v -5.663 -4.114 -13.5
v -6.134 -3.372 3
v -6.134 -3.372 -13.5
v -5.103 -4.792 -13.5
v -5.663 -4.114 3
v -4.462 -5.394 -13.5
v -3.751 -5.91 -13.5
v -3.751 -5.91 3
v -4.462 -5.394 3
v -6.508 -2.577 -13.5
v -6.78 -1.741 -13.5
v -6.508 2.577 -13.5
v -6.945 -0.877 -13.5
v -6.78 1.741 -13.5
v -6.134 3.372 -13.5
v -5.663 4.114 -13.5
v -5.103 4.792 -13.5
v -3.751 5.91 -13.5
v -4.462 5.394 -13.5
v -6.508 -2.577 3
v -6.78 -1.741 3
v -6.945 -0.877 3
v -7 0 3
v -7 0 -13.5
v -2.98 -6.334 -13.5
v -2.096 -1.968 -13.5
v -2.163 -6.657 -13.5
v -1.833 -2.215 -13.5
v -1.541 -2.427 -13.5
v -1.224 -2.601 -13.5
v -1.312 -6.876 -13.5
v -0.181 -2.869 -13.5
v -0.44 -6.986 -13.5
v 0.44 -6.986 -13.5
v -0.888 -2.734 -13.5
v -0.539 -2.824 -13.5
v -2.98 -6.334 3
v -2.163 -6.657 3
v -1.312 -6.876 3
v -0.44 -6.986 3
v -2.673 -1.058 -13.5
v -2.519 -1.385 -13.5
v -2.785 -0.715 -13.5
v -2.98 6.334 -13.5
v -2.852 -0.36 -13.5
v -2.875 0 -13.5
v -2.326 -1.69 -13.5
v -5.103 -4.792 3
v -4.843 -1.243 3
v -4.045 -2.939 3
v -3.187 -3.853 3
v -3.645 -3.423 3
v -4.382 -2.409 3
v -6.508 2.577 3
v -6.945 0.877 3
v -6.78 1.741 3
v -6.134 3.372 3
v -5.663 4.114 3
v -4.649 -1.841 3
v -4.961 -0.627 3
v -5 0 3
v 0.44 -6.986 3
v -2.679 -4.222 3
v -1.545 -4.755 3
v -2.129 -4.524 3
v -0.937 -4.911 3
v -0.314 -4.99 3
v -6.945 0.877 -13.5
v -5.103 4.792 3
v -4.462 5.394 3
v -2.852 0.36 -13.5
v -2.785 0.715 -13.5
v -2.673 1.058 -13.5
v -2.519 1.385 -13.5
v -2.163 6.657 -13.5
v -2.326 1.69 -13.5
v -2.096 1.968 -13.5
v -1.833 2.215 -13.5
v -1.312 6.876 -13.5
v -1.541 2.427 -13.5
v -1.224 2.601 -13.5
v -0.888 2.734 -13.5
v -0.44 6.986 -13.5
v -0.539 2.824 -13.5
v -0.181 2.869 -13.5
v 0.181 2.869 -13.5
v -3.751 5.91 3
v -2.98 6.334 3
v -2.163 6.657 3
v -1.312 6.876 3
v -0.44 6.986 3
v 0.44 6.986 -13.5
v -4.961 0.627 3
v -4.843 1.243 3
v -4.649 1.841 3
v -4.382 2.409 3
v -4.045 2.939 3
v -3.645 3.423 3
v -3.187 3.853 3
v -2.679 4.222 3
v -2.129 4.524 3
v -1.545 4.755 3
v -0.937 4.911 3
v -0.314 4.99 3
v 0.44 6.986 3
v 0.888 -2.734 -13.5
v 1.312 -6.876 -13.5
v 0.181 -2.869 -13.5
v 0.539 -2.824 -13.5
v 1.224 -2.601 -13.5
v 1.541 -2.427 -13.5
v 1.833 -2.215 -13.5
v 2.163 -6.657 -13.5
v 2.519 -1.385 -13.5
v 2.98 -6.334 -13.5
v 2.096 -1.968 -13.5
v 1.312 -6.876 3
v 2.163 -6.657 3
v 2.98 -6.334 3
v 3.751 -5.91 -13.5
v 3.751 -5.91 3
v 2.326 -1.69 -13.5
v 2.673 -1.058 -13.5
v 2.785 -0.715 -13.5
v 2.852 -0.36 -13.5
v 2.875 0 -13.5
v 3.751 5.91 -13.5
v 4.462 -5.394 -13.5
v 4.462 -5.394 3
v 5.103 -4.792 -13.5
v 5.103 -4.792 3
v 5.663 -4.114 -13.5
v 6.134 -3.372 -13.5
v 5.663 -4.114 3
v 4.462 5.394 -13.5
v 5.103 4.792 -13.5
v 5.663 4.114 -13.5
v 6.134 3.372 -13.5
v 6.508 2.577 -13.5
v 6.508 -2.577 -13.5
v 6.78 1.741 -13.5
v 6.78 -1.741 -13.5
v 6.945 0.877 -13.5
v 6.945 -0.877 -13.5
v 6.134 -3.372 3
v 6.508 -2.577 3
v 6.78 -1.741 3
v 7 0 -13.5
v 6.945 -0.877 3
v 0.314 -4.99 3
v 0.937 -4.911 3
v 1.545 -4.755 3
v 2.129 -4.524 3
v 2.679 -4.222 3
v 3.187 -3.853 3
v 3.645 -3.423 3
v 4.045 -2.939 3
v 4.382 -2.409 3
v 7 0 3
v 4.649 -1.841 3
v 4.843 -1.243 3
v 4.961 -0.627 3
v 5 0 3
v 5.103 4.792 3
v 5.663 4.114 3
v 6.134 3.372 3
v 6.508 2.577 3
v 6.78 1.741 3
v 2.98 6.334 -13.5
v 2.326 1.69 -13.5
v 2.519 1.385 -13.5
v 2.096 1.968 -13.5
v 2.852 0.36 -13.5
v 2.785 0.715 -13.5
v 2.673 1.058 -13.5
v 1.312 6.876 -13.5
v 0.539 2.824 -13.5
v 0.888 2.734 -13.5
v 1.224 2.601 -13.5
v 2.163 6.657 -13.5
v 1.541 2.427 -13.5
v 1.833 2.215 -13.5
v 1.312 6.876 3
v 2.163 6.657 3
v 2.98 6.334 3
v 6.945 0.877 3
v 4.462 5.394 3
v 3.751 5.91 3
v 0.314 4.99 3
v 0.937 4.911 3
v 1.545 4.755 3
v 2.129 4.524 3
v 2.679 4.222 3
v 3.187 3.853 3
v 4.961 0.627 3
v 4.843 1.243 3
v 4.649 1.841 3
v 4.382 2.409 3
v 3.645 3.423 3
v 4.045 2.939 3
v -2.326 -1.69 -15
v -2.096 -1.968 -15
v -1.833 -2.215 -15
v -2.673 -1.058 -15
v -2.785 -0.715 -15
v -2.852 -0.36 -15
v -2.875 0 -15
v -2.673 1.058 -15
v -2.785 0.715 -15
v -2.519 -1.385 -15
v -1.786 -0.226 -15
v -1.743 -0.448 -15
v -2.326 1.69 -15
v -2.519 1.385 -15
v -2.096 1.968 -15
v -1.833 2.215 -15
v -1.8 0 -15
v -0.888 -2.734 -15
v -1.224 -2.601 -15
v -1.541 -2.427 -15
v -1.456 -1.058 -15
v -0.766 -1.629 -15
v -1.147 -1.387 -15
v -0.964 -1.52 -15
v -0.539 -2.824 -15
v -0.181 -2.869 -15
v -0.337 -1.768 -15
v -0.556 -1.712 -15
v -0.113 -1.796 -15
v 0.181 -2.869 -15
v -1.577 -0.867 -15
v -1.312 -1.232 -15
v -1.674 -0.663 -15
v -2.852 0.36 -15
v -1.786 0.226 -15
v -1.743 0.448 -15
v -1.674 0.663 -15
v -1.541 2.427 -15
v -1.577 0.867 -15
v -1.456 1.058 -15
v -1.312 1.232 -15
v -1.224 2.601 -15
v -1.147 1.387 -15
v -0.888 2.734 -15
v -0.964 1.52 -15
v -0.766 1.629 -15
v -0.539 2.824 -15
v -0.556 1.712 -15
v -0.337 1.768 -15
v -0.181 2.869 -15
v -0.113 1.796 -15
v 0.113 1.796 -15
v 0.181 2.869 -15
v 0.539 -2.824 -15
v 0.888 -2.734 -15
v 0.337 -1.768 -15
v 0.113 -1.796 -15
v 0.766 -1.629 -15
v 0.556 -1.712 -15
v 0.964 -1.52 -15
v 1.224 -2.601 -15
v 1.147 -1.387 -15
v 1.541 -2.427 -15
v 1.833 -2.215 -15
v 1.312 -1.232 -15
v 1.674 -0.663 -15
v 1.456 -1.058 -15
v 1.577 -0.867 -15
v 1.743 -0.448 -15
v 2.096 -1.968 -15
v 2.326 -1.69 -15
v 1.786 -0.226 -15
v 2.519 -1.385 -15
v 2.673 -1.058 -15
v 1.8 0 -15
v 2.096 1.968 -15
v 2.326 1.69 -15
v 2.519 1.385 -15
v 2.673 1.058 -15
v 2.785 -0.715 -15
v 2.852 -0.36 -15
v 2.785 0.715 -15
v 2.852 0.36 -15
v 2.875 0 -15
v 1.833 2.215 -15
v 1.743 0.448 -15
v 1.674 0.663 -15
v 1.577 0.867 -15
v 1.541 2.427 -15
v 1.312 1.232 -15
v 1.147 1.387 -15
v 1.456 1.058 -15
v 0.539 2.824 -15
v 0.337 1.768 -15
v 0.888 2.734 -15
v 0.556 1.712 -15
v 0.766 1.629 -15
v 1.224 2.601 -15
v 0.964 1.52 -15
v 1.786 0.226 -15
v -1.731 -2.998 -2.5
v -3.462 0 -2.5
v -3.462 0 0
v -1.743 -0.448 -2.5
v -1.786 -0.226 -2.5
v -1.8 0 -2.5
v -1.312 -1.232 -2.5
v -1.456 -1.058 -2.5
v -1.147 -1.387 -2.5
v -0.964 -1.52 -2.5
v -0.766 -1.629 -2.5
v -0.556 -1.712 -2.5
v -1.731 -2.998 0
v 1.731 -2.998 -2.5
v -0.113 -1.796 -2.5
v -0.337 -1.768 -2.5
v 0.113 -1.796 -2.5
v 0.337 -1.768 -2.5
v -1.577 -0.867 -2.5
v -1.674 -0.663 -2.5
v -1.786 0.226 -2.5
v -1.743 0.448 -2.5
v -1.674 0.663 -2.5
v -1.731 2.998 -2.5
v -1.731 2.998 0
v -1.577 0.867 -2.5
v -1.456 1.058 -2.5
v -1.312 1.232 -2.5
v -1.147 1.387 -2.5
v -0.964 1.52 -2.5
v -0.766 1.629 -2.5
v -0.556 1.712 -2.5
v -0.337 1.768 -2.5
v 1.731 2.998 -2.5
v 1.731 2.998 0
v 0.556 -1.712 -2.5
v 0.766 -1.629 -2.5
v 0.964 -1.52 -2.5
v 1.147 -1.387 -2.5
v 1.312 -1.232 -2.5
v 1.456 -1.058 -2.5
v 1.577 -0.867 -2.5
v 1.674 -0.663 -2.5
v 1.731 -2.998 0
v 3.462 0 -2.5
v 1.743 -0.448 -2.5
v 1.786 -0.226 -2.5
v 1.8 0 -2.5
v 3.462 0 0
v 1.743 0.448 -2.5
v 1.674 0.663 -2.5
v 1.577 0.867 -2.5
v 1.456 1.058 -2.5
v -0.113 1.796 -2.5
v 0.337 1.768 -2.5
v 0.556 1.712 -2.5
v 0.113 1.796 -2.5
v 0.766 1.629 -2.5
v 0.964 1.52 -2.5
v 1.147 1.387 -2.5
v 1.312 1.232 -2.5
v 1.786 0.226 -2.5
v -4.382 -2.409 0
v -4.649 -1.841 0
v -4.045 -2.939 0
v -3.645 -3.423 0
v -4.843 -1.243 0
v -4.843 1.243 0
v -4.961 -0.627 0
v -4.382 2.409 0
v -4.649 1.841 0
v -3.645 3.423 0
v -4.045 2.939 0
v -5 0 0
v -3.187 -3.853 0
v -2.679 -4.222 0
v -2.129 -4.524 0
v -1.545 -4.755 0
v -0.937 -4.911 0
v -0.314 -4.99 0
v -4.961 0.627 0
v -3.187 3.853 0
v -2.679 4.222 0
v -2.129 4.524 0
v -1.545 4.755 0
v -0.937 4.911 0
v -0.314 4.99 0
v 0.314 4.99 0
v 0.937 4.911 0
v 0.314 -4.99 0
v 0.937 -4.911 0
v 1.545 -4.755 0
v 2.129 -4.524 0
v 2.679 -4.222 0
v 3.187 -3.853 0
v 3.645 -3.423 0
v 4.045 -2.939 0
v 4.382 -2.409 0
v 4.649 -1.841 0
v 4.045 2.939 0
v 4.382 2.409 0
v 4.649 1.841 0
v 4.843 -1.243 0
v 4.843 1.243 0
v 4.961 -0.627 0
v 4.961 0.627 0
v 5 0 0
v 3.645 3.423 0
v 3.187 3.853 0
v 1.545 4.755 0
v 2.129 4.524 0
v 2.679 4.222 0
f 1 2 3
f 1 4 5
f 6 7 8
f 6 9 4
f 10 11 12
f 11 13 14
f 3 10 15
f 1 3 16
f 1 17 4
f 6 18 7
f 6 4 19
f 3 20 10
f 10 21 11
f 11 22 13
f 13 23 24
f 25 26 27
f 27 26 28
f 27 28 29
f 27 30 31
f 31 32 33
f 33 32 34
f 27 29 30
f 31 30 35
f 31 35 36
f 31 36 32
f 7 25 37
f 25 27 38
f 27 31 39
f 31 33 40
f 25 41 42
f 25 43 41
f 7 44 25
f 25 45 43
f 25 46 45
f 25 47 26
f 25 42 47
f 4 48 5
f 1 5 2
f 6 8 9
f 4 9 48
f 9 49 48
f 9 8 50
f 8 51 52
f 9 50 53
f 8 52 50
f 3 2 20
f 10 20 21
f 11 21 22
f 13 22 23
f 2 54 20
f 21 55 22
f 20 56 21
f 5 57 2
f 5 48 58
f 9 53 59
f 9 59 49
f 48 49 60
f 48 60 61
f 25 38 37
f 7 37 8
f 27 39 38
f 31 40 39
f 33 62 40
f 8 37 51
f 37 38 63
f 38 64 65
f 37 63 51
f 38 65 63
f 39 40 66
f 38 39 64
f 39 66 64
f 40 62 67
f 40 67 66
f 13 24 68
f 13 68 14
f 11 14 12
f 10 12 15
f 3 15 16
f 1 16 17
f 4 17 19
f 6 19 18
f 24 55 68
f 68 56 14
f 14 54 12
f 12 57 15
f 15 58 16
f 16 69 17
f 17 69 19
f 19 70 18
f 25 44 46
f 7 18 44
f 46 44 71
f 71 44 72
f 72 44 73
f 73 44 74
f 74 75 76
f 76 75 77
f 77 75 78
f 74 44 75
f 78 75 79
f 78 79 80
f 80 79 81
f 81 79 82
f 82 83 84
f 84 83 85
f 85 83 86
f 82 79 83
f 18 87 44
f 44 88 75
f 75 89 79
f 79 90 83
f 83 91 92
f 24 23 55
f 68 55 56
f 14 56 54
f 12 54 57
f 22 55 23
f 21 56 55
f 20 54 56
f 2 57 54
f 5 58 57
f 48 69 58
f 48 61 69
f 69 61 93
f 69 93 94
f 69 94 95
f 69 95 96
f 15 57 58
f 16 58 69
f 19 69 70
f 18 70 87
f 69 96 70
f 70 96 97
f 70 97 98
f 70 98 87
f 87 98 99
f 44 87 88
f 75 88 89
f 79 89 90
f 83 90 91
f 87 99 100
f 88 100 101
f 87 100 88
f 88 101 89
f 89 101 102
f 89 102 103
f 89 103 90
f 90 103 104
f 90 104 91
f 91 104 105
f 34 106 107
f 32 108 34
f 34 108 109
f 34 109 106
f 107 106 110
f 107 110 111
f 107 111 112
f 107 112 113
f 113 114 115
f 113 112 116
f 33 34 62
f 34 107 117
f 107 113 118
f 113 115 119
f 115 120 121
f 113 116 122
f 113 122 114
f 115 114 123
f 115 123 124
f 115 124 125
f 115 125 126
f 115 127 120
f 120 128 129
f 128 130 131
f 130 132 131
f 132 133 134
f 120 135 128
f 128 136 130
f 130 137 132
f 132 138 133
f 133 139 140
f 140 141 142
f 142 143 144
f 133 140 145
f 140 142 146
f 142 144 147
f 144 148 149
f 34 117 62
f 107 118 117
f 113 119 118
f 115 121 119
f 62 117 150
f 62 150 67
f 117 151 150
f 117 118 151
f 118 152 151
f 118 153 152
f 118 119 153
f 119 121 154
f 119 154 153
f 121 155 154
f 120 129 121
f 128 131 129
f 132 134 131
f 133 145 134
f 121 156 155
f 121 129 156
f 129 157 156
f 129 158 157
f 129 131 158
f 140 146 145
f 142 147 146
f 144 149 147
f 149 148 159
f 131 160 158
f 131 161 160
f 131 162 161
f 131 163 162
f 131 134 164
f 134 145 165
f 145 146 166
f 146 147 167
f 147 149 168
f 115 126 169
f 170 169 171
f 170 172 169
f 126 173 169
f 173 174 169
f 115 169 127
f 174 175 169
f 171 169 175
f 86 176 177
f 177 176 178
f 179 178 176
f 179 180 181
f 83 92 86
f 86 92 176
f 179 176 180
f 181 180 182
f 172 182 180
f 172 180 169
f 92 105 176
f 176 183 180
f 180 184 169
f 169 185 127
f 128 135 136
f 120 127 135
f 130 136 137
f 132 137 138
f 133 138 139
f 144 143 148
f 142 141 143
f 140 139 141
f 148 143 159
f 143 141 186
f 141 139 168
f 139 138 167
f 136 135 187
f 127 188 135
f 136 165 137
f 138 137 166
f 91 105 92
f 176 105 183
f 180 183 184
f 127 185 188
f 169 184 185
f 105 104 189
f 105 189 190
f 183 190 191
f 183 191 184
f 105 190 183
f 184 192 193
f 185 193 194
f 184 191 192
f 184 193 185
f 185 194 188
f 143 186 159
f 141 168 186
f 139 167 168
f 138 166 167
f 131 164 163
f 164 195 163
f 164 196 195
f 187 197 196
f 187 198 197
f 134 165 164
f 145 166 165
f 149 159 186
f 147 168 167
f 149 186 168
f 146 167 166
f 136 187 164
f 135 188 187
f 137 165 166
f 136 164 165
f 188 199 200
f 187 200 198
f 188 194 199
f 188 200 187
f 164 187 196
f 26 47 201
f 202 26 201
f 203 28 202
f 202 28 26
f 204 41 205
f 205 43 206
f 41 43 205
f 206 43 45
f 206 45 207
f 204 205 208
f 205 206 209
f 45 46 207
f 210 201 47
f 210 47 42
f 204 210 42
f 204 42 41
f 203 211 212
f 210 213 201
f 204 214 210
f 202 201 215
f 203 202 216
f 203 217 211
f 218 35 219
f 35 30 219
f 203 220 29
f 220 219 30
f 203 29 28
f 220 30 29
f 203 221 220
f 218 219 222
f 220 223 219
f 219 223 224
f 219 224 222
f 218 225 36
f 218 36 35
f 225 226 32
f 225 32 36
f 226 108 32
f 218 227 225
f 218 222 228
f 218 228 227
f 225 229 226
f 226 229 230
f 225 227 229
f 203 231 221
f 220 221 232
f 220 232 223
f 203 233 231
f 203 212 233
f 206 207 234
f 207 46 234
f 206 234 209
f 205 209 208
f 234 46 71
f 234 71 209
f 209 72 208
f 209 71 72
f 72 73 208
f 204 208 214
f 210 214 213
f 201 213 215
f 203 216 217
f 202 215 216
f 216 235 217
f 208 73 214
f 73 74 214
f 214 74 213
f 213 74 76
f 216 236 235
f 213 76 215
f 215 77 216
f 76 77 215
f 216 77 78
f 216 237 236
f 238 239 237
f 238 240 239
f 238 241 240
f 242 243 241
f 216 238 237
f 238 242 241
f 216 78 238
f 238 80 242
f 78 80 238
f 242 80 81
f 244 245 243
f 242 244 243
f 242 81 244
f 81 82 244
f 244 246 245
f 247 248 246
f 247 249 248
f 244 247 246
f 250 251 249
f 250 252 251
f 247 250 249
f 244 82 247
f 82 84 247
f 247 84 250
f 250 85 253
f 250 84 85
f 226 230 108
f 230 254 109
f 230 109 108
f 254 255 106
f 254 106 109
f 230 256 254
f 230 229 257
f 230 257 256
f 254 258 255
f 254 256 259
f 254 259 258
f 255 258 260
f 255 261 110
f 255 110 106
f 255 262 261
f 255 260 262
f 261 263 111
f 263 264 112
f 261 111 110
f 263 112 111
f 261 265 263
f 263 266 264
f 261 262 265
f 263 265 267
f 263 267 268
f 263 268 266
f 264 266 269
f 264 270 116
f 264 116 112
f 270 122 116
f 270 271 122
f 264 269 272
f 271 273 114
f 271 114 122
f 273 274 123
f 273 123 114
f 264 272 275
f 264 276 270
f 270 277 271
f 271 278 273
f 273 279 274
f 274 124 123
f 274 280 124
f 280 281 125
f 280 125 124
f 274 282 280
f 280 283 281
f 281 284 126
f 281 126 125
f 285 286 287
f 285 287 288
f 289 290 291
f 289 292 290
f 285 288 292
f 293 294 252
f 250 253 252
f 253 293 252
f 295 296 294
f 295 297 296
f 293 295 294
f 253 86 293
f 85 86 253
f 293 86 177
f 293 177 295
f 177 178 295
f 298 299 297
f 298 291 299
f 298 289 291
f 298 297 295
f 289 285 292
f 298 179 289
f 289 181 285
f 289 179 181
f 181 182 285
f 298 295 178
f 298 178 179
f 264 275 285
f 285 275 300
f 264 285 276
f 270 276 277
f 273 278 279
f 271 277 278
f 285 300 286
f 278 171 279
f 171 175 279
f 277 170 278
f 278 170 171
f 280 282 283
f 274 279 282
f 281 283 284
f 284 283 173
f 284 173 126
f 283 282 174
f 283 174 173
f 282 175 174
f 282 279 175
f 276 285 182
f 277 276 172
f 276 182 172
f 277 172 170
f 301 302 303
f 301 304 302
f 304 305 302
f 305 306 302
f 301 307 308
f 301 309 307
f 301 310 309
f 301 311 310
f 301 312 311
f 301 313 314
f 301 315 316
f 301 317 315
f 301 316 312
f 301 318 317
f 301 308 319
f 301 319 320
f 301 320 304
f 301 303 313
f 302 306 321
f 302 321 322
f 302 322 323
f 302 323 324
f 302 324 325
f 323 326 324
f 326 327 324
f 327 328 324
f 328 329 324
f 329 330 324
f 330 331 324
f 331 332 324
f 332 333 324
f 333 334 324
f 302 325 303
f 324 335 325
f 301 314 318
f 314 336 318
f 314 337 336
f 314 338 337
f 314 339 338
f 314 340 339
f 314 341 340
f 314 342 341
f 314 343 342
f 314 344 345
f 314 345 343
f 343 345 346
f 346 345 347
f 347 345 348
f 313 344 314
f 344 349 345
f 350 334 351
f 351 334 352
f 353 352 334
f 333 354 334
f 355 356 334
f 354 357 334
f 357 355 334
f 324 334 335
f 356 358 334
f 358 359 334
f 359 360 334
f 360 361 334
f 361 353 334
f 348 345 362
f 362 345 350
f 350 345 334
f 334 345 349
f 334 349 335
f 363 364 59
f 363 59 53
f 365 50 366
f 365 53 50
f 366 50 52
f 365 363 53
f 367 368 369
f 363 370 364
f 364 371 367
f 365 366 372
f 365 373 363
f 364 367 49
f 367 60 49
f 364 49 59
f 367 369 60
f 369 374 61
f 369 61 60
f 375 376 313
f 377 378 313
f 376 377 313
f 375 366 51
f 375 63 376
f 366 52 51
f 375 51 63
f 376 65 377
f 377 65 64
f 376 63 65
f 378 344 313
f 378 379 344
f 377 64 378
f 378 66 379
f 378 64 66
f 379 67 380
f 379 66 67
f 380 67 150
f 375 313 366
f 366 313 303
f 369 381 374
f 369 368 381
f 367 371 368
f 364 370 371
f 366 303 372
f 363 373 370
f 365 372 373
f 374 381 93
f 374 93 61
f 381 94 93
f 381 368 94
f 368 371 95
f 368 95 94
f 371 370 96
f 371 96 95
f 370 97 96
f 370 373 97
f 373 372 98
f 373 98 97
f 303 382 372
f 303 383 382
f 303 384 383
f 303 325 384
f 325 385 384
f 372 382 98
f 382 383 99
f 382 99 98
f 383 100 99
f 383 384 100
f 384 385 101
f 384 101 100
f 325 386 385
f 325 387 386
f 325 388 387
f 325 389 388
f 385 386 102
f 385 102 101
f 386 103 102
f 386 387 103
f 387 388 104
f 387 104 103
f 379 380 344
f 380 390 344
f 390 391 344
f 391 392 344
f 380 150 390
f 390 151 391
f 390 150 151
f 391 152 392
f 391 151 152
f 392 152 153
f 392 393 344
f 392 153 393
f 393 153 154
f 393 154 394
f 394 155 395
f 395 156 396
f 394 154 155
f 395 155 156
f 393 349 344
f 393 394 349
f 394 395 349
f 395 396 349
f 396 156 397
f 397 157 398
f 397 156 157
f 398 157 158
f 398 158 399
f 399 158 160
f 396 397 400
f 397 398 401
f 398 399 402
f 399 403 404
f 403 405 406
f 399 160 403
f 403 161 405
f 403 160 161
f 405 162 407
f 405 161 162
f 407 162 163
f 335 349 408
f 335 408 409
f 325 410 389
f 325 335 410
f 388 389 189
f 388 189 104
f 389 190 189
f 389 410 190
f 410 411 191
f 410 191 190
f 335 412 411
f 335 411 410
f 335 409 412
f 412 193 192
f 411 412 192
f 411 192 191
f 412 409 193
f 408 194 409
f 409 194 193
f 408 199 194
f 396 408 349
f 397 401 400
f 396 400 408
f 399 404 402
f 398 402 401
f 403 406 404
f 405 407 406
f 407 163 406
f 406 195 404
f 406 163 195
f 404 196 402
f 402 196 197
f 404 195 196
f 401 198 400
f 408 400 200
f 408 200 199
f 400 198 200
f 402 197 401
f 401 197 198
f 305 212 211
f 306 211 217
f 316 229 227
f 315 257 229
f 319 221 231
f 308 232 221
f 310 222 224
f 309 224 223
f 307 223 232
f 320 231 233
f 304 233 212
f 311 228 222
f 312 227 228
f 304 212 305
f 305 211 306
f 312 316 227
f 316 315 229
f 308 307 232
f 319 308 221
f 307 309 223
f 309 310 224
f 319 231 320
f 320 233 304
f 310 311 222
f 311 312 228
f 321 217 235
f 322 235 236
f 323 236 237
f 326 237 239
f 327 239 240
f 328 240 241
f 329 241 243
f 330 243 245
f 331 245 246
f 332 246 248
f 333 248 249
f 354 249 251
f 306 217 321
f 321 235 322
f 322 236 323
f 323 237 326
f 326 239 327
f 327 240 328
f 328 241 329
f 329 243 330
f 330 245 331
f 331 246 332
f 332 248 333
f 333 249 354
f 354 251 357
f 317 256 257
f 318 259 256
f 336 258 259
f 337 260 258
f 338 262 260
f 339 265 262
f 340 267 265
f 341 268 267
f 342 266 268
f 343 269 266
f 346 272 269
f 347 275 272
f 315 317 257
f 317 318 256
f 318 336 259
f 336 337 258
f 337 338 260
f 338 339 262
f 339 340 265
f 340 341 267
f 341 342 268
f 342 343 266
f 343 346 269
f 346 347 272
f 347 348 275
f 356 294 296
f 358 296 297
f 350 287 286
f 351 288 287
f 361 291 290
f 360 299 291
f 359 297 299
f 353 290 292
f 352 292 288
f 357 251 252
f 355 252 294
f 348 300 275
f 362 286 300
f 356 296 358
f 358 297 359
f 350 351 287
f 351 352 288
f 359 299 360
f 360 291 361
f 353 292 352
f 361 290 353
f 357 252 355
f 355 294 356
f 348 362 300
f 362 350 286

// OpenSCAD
$fn = 50;

difference() {
	union() {
		translate(v = [0, 0, -13.5]) {
			cylinder(h = 16.5, r = 7.0);
		}
		#translate(v = [0, 0, -15.0]) {
			cylinder(h = 15, r = 2.875);
		}
	}
	union() {
		translate(v = [0, 0, 0]) {
			rotate(a = [0, 0, 0]) {
				difference() {
					union() {
						translate(v = [0, 0, -2.5]) {
							linear_extrude(height = 2.5) {
								polygon(points = [[3.4619999999999997, 0.0], [1.7310000000000003, 2.9981799479017264], [-1.7309999999999992, 2.9981799479017264], [-3.4619999999999997, 4.2397272186481365e-16], [-1.7310000000000014, -2.998179947901726], [1.7309999999999977, -2.9981799479017277]]);
							}
						}
					}
					union();
				}
			}
		}
		#cylinder(h = 3, r = 5.0);
		#translate(v = [0, 0, -100.0]) {
			cylinder(h = 200, r = 1.8);
		}
	}
}
